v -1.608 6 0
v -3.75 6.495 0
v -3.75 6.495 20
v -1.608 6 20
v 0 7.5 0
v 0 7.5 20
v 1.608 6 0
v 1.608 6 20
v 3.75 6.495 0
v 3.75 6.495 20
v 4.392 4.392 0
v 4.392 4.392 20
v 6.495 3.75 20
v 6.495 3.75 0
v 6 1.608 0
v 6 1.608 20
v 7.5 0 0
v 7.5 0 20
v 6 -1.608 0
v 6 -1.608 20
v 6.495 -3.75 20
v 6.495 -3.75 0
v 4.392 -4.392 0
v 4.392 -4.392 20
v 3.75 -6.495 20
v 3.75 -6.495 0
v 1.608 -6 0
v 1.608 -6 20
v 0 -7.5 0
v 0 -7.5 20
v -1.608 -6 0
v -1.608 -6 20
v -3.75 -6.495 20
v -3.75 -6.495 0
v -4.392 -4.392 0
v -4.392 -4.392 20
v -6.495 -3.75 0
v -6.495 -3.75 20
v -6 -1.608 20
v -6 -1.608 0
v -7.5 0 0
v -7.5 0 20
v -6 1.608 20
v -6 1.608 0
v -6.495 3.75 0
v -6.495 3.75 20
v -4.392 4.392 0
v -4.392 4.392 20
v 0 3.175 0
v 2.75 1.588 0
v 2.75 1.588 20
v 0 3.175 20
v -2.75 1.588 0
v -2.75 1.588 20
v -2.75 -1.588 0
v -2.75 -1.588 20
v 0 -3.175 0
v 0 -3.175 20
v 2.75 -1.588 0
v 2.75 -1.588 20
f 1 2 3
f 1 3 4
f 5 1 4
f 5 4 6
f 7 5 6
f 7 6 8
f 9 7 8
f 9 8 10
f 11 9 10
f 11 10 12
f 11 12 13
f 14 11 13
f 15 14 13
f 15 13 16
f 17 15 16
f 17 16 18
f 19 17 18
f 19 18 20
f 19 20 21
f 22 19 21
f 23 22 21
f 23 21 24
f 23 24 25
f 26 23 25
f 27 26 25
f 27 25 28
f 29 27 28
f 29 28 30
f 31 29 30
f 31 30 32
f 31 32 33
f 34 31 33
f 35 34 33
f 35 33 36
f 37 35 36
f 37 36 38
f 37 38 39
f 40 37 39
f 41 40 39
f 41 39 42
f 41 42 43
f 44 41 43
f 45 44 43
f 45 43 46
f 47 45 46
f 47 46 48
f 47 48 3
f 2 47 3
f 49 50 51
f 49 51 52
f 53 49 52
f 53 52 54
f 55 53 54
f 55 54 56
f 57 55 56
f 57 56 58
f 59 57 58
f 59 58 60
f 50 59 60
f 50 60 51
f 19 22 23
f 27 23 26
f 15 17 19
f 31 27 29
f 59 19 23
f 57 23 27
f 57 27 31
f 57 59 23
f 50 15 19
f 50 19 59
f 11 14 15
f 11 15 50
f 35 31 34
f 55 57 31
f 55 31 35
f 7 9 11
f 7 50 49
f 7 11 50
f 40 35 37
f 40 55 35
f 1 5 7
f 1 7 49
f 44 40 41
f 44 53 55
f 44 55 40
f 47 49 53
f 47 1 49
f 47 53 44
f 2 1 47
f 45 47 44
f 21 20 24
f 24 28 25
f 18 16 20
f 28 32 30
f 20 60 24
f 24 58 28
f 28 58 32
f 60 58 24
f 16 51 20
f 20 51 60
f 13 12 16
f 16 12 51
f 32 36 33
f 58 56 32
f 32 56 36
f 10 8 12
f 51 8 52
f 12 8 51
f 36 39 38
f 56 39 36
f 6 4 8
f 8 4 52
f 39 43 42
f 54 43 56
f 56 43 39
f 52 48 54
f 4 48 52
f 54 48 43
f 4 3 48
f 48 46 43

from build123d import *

# Parameters (mm, degrees)
PAD_DEPTH = 20


with BuildPart() as part:
    # Sketch → Pad (new body)
    with BuildSketch(Plane.XY):
        Polygon((-3.75, 6.495191), (-1.607695, 6), (0, 7.5), (1.607695, 6), (3.75, 6.495191), (4.392305, 4.392305), (6.495191, 3.75), (6, 1.607695), (7.5, 0), (6, -1.607695), (6.495191, -3.75), (4.392305, -4.392305), (3.75, -6.495191), (1.607695, -6), (0, -7.5), (-1.607695, -6), (-3.75, -6.495191), (-4.392305, -4.392305), (-6.495191, -3.75), (-6, -1.607695), (-7.5, 0), (-6, 1.607695), (-6.495191, 3.75), (-4.392305, 4.392305), align=None)
        Polygon((2.75, 1.587713), (0, 3.175426), (-2.75, 1.587713), (-2.75, -1.587713), (0, -3.175426), (2.75, -1.587713), align=None, mode=Mode.SUBTRACT)
    extrude(amount=PAD_DEPTH)


solid = part.part
